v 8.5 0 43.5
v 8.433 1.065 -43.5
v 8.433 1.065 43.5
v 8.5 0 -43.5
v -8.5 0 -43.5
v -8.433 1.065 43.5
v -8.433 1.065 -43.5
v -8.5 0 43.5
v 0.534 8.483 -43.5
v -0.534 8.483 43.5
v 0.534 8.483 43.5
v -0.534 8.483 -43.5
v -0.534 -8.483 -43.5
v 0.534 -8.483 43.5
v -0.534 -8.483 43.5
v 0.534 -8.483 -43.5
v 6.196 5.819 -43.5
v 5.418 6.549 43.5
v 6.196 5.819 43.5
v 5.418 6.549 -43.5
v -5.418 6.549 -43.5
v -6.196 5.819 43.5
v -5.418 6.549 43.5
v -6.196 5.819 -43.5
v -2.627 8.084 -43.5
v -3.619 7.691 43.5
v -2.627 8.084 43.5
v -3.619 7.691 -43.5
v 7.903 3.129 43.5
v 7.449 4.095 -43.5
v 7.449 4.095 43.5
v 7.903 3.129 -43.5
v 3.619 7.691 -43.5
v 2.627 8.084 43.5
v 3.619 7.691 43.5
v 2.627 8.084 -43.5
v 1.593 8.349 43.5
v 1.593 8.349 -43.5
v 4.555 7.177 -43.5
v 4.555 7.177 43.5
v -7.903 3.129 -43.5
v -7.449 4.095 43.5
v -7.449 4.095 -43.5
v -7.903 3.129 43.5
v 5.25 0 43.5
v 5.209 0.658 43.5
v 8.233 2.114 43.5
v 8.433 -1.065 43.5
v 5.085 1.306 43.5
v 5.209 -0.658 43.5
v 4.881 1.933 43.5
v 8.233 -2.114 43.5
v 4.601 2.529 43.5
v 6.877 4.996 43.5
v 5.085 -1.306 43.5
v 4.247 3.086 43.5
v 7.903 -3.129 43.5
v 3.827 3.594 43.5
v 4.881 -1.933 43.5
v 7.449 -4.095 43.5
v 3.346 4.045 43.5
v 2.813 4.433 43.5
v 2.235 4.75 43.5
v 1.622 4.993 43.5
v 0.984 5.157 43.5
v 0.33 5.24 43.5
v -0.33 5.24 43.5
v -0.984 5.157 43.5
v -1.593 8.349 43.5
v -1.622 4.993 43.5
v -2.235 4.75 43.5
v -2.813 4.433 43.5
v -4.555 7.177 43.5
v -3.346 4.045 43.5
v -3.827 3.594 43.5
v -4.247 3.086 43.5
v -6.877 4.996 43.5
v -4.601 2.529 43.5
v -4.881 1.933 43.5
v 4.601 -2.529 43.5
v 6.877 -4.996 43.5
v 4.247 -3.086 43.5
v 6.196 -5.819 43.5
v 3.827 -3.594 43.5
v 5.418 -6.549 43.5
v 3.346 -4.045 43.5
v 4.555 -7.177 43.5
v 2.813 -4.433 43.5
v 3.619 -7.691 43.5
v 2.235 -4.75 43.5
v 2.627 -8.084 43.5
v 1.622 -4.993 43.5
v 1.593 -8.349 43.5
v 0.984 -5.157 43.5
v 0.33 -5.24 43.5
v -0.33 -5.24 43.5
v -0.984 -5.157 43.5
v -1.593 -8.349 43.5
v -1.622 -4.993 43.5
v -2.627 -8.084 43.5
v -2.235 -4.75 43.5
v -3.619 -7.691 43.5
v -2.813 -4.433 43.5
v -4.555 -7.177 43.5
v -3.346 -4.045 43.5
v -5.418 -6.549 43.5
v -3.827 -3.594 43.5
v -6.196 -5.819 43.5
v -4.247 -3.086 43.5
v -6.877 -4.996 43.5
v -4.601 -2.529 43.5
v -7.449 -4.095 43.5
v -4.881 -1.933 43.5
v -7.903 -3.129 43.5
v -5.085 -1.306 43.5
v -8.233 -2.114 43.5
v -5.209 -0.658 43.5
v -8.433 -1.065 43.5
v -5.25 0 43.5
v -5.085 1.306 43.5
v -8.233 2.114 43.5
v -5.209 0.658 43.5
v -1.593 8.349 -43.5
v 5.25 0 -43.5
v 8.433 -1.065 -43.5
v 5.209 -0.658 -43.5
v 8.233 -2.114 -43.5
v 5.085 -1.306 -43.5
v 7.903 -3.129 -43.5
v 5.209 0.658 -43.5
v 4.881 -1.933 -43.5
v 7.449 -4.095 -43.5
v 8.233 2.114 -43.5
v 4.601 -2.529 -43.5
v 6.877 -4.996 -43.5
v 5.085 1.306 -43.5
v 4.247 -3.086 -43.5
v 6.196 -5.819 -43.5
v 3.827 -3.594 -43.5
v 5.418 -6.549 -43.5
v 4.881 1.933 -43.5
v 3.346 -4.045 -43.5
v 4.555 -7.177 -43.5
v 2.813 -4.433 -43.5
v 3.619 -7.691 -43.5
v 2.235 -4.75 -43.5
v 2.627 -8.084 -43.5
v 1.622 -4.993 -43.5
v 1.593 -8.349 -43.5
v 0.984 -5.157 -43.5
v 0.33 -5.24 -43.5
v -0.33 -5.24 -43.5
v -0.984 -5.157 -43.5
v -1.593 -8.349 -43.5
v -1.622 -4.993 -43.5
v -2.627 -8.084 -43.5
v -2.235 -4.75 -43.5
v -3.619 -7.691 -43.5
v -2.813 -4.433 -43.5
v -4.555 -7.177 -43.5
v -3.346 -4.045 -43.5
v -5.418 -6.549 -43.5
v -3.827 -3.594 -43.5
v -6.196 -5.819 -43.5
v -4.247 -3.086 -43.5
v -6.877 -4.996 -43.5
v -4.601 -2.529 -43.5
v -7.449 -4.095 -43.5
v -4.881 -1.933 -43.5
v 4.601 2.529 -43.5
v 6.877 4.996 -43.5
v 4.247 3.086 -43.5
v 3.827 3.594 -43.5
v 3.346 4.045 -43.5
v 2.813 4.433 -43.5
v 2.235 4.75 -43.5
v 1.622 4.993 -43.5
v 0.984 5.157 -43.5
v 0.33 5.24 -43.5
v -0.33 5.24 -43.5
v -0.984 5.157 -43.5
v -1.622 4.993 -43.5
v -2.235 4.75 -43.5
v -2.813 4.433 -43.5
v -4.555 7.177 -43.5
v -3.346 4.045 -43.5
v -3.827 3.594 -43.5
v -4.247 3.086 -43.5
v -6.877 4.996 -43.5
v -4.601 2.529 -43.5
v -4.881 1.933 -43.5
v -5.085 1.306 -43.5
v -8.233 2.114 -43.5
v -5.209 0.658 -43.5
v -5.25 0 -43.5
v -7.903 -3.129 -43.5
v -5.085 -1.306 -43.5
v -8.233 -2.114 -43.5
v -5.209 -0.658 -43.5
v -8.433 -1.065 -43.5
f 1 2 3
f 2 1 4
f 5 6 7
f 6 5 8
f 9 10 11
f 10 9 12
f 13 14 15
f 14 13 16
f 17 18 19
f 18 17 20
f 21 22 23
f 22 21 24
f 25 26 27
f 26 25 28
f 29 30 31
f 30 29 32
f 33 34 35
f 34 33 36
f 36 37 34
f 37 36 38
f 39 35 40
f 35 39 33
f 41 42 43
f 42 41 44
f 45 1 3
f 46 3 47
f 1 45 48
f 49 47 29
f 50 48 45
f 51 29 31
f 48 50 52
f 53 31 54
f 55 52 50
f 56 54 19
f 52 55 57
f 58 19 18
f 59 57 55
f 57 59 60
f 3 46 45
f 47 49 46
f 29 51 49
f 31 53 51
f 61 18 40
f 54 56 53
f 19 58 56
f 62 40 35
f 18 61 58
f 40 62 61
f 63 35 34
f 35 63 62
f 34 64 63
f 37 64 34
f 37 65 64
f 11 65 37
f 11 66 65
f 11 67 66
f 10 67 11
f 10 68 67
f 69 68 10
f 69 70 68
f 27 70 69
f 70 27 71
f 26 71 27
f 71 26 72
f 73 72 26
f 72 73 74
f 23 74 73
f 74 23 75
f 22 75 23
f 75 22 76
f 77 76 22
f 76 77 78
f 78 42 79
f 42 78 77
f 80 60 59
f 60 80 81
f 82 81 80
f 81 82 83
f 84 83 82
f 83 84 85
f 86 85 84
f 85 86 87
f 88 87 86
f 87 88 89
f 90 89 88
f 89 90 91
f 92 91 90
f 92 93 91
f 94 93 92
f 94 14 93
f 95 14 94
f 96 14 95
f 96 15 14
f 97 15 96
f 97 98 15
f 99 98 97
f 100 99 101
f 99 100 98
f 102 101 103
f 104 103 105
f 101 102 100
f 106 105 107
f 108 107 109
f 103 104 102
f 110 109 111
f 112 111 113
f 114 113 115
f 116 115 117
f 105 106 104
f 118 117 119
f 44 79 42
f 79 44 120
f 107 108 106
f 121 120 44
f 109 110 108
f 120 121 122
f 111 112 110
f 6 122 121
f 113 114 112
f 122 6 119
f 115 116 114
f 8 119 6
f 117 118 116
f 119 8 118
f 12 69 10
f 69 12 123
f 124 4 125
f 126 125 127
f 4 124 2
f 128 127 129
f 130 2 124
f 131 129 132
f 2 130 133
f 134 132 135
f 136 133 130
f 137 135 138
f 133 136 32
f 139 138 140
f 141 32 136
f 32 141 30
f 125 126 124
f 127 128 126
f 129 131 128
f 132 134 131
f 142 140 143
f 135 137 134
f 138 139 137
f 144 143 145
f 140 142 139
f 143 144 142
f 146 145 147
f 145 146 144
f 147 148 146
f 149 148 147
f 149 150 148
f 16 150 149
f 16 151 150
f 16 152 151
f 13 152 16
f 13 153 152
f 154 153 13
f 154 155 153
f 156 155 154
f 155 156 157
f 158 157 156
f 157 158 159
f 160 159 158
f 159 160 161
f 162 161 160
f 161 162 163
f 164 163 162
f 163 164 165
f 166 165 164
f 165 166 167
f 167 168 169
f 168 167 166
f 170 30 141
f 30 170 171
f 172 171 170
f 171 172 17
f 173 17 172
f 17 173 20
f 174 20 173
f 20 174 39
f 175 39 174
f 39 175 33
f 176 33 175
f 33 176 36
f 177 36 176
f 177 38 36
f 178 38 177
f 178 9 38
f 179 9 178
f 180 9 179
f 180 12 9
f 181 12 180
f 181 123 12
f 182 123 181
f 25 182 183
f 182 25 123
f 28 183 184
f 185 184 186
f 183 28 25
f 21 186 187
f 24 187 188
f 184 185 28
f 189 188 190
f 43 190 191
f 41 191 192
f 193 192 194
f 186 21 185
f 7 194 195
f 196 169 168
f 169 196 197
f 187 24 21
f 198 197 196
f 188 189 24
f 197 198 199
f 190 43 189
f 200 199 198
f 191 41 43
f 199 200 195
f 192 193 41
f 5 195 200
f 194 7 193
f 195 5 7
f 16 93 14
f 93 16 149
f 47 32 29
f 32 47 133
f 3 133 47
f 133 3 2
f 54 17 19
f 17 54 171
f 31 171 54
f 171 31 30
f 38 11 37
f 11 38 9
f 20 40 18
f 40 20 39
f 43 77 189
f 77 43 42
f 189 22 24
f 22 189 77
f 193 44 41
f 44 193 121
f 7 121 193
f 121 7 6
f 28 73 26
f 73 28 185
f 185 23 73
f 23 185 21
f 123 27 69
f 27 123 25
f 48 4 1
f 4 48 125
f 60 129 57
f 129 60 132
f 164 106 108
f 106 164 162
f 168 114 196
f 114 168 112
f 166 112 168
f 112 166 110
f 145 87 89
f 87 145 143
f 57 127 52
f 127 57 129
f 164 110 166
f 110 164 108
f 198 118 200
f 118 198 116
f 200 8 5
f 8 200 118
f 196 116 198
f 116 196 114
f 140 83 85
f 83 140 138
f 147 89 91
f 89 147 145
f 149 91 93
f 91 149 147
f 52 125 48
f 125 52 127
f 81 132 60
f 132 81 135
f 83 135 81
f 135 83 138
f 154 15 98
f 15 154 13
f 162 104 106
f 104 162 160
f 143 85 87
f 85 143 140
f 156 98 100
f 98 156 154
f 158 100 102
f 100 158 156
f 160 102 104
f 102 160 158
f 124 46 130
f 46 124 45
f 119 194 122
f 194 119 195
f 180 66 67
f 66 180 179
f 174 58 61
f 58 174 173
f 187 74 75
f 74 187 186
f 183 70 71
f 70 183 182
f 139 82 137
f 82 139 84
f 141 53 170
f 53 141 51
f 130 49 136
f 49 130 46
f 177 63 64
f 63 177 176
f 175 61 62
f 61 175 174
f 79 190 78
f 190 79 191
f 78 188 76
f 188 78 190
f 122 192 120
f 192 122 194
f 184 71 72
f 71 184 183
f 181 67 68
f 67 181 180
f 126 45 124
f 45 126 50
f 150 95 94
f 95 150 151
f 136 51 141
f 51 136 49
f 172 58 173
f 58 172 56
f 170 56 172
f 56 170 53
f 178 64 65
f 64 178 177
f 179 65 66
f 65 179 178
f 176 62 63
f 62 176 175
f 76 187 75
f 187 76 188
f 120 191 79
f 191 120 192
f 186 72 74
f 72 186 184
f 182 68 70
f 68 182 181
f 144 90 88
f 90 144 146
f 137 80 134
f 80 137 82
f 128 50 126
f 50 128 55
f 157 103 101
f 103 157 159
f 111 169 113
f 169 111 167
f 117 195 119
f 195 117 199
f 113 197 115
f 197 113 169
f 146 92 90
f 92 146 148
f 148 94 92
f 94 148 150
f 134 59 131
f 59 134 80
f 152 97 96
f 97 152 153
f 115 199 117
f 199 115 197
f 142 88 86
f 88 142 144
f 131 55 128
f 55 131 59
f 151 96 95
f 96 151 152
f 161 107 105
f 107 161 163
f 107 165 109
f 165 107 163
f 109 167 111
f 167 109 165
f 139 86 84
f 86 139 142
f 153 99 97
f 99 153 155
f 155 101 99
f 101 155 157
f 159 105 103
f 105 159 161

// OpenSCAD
$fn = 50;


difference() {
	union() {
		translate(v = [0, 0, -43.5000000000]) {
			cylinder(h = 87, r = 8.5000000000);
		}
	}
	union() {
		translate(v = [0, 0, -100.0000000000]) {
			cylinder(h = 200, r = 5.2500000000);
		}
	}
}
